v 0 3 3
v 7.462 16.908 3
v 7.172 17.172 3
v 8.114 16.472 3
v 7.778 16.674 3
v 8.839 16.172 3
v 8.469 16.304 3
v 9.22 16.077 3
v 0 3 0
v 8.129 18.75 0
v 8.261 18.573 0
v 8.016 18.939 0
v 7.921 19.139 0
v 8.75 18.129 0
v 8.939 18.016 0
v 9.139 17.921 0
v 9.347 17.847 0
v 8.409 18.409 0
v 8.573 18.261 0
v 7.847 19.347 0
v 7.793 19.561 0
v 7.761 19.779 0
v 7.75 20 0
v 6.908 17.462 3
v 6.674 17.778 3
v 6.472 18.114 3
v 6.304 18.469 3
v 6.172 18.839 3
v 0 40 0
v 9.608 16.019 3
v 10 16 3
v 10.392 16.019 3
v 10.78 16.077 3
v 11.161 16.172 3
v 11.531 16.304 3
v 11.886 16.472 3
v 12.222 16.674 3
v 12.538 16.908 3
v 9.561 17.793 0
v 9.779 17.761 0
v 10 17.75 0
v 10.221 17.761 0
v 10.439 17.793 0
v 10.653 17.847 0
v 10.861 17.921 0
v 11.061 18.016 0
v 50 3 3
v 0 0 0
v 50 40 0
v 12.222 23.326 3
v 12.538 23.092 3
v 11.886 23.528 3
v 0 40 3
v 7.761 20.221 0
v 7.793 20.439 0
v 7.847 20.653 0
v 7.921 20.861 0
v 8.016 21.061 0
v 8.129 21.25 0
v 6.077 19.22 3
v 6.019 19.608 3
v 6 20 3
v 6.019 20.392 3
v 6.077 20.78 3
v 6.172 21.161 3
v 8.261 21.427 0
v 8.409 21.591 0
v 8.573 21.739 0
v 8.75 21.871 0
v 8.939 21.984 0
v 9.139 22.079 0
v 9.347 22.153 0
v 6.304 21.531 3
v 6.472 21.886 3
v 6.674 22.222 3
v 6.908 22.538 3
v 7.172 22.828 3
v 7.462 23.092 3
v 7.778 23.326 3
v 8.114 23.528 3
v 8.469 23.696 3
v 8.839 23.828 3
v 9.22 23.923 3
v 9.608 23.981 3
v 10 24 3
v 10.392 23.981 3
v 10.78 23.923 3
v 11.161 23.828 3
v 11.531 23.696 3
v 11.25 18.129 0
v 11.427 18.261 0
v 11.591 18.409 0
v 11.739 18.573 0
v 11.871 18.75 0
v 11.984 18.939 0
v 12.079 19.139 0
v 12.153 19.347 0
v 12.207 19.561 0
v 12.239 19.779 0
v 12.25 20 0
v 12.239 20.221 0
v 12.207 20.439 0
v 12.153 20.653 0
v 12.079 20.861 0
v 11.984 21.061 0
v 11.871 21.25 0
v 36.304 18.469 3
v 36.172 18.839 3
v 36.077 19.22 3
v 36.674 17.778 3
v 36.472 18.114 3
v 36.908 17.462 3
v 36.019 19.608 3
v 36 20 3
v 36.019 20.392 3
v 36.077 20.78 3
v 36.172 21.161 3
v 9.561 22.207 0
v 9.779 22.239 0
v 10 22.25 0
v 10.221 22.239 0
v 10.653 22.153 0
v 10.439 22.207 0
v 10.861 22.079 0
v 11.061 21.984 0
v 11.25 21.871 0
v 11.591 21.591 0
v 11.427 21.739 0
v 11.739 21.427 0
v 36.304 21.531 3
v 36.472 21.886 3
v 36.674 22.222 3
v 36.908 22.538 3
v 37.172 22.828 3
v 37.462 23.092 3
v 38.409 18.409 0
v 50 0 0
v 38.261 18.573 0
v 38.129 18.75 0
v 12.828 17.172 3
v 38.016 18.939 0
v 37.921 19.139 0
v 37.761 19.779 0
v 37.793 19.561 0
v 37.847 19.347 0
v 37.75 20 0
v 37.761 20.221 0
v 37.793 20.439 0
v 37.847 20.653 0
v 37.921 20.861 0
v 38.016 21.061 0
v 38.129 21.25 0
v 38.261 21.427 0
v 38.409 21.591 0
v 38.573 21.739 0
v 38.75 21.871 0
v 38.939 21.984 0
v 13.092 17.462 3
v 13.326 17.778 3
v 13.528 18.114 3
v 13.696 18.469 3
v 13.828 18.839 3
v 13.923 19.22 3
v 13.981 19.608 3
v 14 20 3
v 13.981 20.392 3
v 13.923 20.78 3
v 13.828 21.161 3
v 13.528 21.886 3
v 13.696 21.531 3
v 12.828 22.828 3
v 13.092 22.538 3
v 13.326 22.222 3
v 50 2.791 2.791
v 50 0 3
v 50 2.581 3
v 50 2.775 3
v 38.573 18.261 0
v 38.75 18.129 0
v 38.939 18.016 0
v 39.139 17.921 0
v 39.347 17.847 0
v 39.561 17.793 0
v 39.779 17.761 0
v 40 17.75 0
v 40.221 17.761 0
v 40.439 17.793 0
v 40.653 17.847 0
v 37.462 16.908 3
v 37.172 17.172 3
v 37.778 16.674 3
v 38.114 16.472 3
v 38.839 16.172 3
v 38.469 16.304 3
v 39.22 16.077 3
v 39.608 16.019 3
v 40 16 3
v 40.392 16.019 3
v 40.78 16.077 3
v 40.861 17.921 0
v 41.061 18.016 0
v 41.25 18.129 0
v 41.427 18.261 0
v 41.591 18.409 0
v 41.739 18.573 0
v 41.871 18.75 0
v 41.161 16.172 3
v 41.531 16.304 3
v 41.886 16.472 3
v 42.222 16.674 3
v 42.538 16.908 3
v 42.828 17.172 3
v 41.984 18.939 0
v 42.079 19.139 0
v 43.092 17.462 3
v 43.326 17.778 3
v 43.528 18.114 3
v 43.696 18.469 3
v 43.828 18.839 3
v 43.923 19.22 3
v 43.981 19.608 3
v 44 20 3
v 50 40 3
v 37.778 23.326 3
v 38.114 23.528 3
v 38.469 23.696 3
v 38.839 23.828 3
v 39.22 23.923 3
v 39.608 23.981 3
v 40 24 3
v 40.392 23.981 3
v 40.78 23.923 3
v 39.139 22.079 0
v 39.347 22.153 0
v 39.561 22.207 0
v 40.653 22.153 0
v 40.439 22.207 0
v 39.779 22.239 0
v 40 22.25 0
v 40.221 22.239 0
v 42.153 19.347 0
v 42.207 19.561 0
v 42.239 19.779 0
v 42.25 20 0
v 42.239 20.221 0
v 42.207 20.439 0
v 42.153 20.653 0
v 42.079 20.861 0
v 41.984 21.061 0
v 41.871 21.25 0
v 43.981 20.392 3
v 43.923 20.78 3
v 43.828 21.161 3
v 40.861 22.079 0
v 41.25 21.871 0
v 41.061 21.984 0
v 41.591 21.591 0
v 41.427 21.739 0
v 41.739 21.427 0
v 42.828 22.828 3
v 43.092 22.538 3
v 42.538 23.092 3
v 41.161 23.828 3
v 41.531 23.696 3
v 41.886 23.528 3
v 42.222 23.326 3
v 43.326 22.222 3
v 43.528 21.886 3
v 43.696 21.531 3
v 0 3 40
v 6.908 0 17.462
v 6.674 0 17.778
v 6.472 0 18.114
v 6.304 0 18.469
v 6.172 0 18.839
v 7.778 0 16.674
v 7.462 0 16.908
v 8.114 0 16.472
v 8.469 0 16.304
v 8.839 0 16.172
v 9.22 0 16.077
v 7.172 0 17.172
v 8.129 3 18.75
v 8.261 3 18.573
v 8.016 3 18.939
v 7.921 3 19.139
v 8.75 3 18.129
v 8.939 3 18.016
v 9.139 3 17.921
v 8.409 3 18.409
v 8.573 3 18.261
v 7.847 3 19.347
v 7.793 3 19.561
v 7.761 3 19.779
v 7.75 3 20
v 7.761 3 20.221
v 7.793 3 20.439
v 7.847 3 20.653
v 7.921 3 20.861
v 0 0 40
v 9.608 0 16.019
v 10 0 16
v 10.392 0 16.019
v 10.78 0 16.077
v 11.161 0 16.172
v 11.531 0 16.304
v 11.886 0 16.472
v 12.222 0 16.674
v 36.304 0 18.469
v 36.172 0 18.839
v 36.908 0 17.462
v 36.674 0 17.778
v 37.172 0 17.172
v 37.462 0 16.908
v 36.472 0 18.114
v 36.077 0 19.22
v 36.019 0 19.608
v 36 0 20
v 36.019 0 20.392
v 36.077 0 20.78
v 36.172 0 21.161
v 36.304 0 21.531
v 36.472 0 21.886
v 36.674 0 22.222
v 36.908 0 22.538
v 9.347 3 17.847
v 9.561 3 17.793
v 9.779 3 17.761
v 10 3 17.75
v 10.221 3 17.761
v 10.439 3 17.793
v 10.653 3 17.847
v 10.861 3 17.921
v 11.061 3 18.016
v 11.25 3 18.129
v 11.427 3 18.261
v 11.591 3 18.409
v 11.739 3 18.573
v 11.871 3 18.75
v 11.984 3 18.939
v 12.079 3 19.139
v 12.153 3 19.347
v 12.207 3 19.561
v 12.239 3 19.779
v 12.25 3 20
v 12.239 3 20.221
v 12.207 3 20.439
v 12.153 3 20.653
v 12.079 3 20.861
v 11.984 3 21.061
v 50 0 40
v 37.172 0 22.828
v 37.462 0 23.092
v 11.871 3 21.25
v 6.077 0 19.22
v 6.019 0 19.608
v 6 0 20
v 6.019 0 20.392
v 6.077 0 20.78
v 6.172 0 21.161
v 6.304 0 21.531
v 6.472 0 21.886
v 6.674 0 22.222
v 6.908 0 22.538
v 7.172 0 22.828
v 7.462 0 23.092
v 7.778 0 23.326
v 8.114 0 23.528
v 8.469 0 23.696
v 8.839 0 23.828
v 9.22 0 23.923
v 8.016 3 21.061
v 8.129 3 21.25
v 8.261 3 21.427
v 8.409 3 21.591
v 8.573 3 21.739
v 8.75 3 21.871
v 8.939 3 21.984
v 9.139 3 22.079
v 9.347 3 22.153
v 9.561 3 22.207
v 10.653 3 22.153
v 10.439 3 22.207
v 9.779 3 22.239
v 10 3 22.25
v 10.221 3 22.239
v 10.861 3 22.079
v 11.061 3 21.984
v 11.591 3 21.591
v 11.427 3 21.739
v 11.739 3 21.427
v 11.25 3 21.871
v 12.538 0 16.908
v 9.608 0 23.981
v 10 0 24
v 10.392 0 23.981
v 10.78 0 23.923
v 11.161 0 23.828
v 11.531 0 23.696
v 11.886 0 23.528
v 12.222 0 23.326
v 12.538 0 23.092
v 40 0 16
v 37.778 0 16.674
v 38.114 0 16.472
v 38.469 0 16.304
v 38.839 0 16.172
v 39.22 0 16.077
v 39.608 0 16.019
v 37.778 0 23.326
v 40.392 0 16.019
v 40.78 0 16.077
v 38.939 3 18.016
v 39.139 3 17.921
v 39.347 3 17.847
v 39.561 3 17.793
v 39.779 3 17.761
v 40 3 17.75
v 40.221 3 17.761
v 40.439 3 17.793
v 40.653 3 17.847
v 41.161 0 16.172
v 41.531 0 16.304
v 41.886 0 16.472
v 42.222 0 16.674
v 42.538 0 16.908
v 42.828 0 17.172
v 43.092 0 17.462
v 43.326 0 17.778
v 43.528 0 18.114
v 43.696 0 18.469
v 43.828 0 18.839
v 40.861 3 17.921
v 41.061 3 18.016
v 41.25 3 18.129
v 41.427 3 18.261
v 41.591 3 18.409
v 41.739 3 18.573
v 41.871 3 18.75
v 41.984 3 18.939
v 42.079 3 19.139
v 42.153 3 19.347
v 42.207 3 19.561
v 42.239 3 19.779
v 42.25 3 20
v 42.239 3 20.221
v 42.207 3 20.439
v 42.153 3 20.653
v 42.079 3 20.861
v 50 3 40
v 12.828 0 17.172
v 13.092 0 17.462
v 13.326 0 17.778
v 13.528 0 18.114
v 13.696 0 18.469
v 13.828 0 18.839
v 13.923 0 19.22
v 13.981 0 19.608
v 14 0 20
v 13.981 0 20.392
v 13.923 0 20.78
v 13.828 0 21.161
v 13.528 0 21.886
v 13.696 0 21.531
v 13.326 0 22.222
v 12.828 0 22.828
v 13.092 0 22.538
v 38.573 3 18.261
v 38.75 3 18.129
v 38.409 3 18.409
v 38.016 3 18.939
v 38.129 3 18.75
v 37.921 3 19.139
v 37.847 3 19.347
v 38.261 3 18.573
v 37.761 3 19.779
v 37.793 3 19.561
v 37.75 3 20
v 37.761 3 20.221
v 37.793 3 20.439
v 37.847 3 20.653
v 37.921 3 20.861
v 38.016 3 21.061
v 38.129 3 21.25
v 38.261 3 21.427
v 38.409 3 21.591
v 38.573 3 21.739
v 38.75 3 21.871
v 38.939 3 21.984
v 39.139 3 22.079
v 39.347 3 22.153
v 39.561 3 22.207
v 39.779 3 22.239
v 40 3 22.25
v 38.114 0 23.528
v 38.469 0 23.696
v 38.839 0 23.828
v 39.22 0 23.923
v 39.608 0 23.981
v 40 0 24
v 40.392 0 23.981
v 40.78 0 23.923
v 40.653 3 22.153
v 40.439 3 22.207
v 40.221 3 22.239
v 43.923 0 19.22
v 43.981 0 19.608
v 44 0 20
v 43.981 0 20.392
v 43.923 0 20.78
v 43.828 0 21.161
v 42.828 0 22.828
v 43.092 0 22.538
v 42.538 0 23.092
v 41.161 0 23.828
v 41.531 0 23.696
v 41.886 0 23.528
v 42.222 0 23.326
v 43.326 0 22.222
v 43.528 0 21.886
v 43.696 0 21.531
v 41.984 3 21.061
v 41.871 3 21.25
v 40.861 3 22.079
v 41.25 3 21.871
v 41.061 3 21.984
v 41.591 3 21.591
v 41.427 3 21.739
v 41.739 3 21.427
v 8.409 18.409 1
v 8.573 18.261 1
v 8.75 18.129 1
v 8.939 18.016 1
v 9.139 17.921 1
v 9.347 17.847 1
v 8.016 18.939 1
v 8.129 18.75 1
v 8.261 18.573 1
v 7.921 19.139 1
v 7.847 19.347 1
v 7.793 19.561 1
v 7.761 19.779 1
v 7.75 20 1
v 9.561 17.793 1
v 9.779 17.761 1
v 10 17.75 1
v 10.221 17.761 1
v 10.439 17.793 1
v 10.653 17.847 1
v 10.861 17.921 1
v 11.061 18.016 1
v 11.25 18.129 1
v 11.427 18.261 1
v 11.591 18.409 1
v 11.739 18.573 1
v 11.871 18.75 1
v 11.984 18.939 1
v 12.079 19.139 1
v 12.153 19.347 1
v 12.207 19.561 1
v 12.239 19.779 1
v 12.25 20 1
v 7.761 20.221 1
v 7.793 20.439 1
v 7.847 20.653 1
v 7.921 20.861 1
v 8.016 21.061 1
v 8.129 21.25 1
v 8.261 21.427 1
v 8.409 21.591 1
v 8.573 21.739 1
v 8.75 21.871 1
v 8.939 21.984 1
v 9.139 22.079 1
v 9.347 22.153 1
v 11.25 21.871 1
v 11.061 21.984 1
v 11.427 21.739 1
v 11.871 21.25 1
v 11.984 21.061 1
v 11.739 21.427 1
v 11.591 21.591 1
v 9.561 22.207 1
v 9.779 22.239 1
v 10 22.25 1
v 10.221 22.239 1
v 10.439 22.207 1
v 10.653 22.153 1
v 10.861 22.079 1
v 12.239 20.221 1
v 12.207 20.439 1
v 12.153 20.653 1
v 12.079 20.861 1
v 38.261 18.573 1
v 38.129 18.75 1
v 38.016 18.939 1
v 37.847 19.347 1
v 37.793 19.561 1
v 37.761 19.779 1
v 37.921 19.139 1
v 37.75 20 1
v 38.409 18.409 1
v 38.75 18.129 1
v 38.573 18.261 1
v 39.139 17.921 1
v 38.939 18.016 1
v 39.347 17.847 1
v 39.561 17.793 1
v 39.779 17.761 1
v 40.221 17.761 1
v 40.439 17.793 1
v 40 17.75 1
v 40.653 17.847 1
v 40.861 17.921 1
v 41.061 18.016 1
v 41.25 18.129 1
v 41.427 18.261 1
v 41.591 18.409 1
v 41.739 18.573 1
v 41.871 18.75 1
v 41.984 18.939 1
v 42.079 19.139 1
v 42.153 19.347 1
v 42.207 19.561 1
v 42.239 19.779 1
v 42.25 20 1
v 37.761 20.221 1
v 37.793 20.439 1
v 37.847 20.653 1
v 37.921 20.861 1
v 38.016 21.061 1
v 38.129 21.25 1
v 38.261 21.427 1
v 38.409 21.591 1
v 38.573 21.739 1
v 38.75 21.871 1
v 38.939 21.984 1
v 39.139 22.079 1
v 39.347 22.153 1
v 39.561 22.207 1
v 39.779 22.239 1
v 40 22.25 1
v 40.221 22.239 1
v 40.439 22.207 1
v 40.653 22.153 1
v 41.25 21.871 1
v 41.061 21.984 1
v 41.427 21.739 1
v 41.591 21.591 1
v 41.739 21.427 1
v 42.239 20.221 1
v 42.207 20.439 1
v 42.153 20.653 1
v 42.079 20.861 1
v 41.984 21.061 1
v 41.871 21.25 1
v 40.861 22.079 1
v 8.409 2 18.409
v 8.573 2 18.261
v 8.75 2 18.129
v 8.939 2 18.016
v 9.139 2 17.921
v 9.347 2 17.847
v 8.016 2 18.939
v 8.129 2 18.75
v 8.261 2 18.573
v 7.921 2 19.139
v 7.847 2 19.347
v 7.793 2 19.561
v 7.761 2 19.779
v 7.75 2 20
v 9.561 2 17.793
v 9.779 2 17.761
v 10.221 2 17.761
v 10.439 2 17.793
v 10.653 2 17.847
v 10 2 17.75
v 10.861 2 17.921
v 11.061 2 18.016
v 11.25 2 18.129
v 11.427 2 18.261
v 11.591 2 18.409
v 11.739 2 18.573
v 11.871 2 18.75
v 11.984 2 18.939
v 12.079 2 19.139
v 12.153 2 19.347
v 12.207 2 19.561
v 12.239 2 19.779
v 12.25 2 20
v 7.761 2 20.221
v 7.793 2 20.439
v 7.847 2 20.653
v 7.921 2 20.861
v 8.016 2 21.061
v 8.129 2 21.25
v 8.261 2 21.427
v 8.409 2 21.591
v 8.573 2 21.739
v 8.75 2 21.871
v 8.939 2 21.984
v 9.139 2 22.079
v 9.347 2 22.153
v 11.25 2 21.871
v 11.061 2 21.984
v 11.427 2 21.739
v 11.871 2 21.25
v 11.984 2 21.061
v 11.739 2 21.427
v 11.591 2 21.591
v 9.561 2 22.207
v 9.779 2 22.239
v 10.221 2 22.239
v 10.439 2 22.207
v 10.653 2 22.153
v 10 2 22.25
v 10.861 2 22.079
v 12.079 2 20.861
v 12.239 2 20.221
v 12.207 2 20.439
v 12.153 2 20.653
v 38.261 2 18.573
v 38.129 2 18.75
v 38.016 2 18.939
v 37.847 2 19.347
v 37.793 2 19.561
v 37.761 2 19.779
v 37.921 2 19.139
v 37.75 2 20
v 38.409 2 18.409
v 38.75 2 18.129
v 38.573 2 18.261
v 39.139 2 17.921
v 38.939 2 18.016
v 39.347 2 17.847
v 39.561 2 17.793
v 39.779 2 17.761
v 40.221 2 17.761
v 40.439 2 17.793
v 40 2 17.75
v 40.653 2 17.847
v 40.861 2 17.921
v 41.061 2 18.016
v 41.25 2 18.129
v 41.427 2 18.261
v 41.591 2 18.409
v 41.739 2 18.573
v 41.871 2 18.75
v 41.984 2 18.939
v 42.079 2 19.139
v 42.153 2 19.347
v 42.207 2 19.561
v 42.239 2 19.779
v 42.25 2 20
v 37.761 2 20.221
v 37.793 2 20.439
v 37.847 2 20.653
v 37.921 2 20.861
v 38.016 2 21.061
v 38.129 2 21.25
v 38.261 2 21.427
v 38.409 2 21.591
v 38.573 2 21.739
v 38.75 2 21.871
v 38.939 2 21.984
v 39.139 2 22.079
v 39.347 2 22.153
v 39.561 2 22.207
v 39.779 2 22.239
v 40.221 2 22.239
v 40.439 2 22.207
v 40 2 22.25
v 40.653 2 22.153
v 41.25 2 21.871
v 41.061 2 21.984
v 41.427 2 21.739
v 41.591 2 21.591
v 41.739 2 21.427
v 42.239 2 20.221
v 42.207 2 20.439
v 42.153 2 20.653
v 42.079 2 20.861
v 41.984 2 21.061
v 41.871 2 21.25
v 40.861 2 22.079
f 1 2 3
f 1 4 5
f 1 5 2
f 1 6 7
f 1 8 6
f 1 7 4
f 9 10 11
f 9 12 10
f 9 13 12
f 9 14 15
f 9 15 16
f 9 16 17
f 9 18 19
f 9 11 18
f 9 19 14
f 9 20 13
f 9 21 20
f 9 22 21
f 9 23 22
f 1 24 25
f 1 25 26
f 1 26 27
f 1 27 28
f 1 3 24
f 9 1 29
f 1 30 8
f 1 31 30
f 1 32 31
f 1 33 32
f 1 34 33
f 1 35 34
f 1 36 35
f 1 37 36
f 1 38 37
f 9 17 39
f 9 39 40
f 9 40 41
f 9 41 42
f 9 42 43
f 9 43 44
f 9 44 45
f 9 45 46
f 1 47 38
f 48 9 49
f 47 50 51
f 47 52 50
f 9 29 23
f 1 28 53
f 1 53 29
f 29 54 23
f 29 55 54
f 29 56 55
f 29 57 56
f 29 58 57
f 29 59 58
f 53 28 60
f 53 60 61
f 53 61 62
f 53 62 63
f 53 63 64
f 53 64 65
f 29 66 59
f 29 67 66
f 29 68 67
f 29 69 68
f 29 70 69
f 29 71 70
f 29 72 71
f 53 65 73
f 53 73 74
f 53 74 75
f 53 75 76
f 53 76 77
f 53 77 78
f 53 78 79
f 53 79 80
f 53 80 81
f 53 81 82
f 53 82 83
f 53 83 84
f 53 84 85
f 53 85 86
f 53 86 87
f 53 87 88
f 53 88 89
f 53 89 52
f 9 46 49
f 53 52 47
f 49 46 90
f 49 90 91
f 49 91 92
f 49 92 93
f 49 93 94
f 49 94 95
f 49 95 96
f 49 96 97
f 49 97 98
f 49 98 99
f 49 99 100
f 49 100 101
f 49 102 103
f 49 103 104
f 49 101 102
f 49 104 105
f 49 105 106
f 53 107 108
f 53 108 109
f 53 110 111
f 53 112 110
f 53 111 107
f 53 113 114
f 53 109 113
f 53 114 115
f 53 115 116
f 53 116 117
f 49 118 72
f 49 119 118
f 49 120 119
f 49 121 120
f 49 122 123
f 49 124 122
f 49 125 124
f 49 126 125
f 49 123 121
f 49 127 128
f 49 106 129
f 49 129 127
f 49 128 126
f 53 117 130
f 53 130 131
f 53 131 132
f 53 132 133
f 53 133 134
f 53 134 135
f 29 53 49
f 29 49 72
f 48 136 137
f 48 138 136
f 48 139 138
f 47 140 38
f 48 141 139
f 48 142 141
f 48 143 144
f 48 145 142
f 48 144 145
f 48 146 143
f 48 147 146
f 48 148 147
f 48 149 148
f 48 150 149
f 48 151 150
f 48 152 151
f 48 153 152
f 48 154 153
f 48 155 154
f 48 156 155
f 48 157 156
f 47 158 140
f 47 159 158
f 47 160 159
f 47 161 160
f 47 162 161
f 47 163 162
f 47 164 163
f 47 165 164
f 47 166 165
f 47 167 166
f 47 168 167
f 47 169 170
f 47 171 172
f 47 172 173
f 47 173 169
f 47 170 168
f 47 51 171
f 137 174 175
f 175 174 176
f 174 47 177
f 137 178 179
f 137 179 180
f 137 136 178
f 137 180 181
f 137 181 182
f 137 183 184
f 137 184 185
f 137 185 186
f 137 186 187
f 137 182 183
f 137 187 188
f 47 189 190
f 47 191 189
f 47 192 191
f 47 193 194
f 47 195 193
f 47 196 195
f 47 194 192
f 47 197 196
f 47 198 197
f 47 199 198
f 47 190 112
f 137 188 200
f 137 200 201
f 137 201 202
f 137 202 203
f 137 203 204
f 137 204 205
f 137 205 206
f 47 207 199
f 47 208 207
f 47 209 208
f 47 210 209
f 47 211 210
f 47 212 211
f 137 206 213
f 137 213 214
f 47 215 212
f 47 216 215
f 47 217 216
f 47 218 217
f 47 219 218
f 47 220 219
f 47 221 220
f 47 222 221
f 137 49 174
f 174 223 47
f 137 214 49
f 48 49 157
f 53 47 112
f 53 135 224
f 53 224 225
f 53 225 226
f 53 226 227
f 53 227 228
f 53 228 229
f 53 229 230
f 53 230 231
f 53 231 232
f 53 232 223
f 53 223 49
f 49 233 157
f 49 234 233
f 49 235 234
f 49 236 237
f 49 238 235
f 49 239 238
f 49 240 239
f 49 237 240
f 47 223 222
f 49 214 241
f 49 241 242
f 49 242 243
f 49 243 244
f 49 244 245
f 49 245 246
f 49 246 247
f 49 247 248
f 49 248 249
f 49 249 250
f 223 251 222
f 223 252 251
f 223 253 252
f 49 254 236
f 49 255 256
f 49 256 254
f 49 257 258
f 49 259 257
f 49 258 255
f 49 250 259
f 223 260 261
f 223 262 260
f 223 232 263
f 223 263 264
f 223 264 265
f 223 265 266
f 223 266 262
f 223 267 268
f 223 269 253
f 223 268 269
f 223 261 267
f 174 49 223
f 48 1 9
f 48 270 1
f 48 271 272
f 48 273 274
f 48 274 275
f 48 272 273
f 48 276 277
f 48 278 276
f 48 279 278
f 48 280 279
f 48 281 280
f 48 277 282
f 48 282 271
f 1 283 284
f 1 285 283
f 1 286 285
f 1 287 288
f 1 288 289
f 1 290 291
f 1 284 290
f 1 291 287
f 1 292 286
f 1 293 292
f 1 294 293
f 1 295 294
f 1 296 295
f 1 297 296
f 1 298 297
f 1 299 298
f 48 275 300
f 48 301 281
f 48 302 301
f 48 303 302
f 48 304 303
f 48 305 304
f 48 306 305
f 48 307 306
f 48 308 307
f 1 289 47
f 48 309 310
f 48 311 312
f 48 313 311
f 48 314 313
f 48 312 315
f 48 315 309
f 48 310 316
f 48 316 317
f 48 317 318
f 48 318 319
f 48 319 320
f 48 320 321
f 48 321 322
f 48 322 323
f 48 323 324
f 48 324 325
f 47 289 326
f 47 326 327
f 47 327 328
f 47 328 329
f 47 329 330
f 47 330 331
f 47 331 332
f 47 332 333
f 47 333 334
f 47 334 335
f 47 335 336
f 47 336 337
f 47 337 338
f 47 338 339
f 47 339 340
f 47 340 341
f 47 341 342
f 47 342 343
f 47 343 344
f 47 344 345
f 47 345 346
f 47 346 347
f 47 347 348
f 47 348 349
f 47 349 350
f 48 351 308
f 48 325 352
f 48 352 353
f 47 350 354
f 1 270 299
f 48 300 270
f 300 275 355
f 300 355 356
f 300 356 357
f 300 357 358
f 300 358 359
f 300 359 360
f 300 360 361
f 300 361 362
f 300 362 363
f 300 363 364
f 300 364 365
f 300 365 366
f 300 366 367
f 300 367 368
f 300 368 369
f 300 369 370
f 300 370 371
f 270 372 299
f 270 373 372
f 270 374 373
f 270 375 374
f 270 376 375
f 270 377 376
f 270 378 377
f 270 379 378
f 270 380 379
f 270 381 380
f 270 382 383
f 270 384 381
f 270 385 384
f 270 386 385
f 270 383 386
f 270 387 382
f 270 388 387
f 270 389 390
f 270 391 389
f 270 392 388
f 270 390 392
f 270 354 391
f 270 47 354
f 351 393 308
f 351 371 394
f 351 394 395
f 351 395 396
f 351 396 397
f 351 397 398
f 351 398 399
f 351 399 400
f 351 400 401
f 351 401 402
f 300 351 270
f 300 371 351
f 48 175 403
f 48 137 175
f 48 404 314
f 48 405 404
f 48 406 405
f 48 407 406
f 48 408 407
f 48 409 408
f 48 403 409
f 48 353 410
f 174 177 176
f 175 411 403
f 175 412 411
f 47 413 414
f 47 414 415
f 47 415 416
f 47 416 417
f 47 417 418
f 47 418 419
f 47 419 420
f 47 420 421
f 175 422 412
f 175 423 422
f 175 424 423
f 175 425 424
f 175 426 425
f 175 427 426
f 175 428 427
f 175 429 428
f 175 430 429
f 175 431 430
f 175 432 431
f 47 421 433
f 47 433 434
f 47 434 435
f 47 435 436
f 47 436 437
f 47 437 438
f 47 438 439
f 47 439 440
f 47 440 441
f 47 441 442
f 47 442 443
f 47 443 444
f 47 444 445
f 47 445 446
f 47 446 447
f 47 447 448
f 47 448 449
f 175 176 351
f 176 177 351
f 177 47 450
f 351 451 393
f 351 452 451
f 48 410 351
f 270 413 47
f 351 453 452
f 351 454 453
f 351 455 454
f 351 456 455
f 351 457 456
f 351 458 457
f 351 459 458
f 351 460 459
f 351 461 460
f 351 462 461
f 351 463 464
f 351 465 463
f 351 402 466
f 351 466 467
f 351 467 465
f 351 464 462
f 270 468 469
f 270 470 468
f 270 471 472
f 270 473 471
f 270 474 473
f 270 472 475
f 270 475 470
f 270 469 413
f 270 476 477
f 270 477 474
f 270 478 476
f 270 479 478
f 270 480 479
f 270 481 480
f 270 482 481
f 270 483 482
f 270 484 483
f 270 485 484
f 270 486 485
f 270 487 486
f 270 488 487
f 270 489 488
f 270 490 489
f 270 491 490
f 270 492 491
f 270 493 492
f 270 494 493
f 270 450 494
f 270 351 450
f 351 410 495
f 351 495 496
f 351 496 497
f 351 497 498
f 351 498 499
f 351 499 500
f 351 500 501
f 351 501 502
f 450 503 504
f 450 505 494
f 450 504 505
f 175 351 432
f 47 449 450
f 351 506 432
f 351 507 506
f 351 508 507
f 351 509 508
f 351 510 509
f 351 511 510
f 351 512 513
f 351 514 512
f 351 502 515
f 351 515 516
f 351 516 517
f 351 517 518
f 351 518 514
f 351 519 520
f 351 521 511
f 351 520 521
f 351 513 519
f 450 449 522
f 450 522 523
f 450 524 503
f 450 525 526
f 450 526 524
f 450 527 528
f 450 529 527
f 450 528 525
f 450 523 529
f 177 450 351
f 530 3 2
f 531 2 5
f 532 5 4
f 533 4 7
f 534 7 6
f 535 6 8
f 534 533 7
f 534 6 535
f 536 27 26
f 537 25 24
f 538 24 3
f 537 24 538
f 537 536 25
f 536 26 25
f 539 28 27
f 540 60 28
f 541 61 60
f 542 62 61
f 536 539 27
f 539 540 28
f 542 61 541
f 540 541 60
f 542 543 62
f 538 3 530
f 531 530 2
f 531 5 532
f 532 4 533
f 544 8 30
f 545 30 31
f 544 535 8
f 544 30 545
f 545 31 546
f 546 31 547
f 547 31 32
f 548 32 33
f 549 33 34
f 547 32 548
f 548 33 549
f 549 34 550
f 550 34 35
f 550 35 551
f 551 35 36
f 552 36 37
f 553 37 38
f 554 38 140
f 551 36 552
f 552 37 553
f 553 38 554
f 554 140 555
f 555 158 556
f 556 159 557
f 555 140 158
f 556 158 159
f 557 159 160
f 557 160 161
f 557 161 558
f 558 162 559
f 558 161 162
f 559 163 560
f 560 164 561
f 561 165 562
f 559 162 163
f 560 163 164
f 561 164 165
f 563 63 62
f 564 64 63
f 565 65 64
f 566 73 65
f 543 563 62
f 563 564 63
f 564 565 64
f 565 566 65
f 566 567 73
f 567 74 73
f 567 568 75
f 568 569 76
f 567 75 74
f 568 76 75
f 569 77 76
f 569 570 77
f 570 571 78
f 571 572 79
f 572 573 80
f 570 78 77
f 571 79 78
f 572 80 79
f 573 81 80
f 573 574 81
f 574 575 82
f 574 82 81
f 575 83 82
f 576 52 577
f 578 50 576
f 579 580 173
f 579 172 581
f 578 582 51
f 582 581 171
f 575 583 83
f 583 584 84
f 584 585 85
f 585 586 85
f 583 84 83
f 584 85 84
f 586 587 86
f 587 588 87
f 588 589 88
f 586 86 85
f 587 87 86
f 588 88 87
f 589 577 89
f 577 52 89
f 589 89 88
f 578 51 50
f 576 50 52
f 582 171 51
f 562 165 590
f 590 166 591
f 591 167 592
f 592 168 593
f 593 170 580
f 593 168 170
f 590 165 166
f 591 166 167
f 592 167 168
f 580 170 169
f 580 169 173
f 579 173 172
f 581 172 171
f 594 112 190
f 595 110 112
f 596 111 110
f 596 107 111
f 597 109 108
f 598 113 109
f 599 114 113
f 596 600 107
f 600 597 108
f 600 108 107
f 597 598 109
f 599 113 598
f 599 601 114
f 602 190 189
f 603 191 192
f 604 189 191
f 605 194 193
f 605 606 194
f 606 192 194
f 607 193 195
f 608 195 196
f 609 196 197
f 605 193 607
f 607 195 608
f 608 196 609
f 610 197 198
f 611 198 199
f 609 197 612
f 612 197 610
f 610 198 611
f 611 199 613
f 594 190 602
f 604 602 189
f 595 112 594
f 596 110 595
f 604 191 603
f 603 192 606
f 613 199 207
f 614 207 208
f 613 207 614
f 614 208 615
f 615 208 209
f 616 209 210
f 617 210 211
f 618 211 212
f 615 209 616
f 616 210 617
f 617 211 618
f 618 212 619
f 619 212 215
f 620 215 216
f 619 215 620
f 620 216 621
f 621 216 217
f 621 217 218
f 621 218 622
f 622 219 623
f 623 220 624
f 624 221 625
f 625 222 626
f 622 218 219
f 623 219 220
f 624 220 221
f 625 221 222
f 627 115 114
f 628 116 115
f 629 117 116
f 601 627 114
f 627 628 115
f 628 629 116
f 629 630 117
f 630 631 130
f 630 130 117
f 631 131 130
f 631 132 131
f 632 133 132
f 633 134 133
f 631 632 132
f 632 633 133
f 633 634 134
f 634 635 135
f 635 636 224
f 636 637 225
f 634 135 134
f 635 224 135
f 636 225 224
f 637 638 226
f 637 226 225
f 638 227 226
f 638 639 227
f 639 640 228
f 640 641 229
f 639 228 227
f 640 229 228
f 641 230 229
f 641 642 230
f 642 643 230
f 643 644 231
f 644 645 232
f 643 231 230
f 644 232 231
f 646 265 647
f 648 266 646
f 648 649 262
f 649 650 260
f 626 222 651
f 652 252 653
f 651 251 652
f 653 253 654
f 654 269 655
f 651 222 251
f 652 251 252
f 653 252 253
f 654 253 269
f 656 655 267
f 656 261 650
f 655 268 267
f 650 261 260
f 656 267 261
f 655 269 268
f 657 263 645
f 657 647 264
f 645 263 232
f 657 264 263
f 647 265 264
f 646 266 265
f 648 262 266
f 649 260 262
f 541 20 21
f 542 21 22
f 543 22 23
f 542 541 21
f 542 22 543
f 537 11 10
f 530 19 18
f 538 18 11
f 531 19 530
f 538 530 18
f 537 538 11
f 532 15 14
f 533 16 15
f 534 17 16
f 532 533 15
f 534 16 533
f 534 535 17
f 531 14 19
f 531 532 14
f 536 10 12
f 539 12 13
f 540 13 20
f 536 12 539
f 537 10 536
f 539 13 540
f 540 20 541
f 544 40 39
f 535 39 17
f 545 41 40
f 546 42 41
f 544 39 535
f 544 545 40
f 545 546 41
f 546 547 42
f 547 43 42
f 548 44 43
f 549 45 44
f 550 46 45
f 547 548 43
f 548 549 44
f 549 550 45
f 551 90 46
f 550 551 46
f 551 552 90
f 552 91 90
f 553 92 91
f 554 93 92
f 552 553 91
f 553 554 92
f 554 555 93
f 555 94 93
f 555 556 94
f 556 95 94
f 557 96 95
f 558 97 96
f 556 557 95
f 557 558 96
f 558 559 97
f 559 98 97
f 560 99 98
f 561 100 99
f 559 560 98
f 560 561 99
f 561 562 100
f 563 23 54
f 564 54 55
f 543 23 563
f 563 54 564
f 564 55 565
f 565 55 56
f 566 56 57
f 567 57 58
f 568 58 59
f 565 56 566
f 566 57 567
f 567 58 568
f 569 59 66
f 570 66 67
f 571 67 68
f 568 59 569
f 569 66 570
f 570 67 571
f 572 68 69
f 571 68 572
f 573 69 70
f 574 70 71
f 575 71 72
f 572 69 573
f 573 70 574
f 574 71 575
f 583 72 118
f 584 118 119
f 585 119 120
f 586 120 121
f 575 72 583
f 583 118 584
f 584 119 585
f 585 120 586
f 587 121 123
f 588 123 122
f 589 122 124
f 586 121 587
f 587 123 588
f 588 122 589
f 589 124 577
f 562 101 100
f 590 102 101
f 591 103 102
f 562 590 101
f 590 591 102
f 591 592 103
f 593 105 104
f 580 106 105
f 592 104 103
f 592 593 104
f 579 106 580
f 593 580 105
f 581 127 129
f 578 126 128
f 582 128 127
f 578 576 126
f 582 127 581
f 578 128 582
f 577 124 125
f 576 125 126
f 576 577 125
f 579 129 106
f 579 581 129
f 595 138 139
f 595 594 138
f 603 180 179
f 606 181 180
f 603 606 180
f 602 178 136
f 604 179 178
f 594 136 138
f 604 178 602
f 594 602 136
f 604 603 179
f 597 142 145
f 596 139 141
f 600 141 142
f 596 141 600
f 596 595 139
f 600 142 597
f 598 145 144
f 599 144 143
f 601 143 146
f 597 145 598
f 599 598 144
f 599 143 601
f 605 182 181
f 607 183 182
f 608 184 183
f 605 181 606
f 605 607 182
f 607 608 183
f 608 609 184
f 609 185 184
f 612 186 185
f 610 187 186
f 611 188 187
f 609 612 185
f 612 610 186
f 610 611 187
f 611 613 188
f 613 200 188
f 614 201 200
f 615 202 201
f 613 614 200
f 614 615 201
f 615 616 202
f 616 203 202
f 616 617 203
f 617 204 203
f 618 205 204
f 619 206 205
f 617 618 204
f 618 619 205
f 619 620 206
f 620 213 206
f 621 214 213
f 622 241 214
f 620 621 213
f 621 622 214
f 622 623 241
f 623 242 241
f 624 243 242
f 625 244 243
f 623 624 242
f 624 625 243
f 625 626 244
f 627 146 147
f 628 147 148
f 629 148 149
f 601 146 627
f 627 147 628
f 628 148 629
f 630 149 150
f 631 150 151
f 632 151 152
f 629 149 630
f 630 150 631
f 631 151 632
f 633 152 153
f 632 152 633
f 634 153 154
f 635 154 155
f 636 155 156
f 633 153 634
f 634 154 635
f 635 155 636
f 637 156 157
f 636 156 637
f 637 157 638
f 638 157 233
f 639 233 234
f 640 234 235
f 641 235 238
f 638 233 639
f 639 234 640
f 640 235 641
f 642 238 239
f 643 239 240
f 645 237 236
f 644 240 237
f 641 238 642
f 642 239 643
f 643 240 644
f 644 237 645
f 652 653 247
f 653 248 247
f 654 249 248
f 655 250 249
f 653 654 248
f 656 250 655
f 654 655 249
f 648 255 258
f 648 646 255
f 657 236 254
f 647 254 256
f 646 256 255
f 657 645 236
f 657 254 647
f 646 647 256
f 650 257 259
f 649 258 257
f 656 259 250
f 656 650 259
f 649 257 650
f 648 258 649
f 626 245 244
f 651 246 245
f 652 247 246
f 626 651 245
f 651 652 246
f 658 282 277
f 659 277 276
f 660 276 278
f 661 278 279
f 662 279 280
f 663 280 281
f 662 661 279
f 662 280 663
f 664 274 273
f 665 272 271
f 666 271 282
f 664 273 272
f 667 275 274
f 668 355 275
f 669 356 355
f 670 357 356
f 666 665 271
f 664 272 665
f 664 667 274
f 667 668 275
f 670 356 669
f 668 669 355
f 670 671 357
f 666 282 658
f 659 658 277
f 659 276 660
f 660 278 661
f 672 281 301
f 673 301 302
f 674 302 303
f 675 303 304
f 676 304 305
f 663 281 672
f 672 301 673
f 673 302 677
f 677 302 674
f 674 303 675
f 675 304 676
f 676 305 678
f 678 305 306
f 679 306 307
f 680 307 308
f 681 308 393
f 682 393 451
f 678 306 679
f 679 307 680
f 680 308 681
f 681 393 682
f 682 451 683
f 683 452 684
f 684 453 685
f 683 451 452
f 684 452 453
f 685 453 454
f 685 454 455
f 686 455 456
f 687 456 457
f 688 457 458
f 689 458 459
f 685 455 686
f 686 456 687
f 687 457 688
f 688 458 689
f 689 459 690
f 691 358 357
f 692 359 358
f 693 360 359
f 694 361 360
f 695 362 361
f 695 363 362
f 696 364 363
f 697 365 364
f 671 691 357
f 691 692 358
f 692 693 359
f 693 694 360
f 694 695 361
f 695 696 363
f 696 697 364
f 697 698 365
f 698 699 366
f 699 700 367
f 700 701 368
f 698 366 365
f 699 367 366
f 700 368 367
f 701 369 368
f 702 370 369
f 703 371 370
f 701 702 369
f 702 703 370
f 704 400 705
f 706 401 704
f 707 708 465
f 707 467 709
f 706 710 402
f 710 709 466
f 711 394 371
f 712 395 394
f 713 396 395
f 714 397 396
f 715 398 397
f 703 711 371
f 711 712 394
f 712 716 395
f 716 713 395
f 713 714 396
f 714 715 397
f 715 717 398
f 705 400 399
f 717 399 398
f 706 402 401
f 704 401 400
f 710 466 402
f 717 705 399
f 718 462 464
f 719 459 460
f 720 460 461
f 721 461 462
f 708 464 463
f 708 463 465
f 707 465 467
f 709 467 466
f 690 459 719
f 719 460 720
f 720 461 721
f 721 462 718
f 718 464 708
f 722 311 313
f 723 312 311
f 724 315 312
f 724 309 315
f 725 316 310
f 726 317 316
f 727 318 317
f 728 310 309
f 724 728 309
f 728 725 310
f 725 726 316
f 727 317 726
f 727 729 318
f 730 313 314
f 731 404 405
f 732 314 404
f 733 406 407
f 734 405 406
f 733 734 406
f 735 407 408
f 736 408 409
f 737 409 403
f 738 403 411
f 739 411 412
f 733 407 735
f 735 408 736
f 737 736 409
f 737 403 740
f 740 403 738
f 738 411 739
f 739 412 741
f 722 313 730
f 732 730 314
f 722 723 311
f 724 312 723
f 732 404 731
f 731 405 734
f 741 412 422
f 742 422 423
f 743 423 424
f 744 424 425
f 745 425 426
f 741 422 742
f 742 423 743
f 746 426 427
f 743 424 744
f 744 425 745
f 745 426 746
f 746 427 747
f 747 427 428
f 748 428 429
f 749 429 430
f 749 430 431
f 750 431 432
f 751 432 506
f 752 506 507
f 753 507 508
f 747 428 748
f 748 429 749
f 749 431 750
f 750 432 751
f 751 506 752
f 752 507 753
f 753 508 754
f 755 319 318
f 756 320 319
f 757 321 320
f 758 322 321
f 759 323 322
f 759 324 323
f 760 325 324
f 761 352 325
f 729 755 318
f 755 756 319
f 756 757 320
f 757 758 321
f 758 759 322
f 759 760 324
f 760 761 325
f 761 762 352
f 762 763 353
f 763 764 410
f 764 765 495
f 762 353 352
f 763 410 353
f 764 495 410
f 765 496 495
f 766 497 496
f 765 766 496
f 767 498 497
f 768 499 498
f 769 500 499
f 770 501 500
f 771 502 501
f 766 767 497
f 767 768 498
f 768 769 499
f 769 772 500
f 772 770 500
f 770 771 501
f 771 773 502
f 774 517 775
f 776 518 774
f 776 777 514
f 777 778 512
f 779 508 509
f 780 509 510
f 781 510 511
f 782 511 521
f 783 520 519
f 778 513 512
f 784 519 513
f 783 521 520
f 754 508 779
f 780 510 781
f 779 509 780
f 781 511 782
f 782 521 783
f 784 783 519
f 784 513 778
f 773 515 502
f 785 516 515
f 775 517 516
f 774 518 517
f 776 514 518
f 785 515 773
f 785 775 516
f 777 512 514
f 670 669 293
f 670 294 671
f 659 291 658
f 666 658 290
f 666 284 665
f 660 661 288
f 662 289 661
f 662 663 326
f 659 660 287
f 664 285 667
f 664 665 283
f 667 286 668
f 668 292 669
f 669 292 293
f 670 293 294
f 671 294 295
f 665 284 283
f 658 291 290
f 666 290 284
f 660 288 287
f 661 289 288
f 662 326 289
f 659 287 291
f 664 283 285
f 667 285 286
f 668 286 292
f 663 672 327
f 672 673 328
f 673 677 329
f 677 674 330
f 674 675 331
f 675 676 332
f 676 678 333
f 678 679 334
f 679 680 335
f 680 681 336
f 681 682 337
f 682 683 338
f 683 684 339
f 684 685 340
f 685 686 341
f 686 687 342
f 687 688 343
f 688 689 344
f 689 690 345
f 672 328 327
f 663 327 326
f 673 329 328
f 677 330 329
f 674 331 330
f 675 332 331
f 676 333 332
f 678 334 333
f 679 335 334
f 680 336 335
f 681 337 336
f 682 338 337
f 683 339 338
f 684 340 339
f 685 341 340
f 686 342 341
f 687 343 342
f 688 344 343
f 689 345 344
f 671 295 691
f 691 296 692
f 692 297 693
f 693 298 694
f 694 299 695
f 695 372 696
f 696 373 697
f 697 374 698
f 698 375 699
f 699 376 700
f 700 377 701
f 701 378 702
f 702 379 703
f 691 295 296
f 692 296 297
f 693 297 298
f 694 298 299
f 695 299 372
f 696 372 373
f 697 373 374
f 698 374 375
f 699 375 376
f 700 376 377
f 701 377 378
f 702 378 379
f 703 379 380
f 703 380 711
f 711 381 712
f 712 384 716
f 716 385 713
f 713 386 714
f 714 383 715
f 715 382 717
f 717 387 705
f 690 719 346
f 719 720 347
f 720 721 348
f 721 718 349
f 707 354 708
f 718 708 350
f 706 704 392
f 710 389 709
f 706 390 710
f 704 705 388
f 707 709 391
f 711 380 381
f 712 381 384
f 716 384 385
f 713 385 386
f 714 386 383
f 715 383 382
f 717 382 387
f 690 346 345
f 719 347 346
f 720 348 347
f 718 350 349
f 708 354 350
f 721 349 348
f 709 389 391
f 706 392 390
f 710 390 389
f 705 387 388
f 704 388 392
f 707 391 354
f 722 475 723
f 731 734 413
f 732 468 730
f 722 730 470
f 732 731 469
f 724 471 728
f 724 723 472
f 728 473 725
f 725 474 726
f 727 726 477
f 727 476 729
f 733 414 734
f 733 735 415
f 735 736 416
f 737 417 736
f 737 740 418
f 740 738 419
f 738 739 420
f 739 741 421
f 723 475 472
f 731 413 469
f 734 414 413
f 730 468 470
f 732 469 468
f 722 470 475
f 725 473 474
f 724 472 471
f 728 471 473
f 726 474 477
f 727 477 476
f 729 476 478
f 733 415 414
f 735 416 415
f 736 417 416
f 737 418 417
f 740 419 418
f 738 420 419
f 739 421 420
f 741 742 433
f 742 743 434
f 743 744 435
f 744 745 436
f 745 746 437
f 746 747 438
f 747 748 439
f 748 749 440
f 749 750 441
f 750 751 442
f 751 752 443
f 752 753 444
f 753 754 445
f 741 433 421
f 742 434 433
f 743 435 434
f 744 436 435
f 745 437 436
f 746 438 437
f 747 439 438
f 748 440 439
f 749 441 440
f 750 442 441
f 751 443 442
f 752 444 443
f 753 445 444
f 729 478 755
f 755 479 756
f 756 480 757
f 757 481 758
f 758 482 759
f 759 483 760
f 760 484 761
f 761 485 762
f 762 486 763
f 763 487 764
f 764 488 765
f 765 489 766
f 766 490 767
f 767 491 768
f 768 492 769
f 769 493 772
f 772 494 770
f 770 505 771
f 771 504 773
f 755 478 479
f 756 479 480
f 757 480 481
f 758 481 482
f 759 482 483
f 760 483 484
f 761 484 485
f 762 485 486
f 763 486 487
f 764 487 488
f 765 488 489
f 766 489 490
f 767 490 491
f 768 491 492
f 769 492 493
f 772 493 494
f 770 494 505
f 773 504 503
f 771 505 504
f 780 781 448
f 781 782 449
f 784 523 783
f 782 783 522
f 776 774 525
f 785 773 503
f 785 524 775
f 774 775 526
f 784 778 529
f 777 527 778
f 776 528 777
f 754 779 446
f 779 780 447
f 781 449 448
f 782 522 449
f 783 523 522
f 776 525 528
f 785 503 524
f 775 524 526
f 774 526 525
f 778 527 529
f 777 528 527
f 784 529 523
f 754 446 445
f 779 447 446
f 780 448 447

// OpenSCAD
// ===============================================
//                Parameters
// ===============================================

// --- Bracket Dimensions ---
width     = 50;  // Width on X-axis
depth     = 40;  // Horizontal flange depth on Y-axis
height    = 40;  // Vertical flange height on Z-axis
thickness = 3;   // Thickness of the flanges

// --- M4 Countersunk Hole Dimensions ---
hole_dia  = 4.5; // Through-hole diameter
cs_dia    = 8;   // Countersink top diameter
cs_depth  = 2;   // Countersink depth

// --- Hole Positioning ---
// X-coordinates for the two holes on each flange
hole_pos_x_list = [10, width - 10]; 
// Y-coordinate for holes on the horizontal flange (centerline)
hole_pos_y = depth / 2;
// Z-coordinate for holes on the vertical flange (centerline)
hole_pos_z = height / 2;

// --- Rendering Quality ---
$fn = 64;


// ===============================================
//                  Model
// ===============================================
difference() {
    
    // 1. Create the main body of the L-bracket
    // The inner corner is at the origin [0, 0, 0]
    union() {
        // Horizontal flange, extending in +Y direction
        cube([width, depth, thickness]);
        
        // Vertical flange, extending in +Z direction
        cube([width, thickness, height]);
    }
    
    // 2. Create and subtract the countersunk holes
    
    // --- Holes on the horizontal flange ---
    // The countersinks are on the top surface (z=thickness), facing downwards.
    for (x_pos = hole_pos_x_list) {
        // Position the cutter at the top surface (z=thickness) and rotate it to point inwards (-Z)
        translate([x_pos, hole_pos_y, thickness])
        rotate(a=[180, 0, 0]) {
            // A small epsilon for clean subtraction
            eps = 0.1;
            // Countersink cone (frustum)
            cylinder(h = cs_depth, d1 = cs_dia, d2 = hole_dia);
            // Through-hole
            cylinder(h = thickness + eps, d = hole_dia);
        }
    }
    
    // --- Holes on the vertical flange ---
    // The countersinks are on the outer surface (y=0), facing inwards.
    for (x_pos = hole_pos_x_list) {
        // [FIX] Position the cutter at the outer surface (y=0) and rotate it to point inwards (+Y).
        // The original code placed it at the inner surface (y=thickness) and pointed it the wrong way,
        // resulting in the countersink being on the inside corner as seen in the image.
        translate([x_pos, 0, hole_pos_z])
        rotate(a=[-90, 0, 0]) { // Rotate cutter's Z-axis to align with world's +Y axis
            // A small epsilon for clean subtraction
            eps = 0.1;
            // Countersink cone (frustum)
            cylinder(h = cs_depth, d1 = cs_dia, d2 = hole_dia);
            // Through-hole
            cylinder(h = thickness + eps, d = hole_dia);
        }
    }
}
